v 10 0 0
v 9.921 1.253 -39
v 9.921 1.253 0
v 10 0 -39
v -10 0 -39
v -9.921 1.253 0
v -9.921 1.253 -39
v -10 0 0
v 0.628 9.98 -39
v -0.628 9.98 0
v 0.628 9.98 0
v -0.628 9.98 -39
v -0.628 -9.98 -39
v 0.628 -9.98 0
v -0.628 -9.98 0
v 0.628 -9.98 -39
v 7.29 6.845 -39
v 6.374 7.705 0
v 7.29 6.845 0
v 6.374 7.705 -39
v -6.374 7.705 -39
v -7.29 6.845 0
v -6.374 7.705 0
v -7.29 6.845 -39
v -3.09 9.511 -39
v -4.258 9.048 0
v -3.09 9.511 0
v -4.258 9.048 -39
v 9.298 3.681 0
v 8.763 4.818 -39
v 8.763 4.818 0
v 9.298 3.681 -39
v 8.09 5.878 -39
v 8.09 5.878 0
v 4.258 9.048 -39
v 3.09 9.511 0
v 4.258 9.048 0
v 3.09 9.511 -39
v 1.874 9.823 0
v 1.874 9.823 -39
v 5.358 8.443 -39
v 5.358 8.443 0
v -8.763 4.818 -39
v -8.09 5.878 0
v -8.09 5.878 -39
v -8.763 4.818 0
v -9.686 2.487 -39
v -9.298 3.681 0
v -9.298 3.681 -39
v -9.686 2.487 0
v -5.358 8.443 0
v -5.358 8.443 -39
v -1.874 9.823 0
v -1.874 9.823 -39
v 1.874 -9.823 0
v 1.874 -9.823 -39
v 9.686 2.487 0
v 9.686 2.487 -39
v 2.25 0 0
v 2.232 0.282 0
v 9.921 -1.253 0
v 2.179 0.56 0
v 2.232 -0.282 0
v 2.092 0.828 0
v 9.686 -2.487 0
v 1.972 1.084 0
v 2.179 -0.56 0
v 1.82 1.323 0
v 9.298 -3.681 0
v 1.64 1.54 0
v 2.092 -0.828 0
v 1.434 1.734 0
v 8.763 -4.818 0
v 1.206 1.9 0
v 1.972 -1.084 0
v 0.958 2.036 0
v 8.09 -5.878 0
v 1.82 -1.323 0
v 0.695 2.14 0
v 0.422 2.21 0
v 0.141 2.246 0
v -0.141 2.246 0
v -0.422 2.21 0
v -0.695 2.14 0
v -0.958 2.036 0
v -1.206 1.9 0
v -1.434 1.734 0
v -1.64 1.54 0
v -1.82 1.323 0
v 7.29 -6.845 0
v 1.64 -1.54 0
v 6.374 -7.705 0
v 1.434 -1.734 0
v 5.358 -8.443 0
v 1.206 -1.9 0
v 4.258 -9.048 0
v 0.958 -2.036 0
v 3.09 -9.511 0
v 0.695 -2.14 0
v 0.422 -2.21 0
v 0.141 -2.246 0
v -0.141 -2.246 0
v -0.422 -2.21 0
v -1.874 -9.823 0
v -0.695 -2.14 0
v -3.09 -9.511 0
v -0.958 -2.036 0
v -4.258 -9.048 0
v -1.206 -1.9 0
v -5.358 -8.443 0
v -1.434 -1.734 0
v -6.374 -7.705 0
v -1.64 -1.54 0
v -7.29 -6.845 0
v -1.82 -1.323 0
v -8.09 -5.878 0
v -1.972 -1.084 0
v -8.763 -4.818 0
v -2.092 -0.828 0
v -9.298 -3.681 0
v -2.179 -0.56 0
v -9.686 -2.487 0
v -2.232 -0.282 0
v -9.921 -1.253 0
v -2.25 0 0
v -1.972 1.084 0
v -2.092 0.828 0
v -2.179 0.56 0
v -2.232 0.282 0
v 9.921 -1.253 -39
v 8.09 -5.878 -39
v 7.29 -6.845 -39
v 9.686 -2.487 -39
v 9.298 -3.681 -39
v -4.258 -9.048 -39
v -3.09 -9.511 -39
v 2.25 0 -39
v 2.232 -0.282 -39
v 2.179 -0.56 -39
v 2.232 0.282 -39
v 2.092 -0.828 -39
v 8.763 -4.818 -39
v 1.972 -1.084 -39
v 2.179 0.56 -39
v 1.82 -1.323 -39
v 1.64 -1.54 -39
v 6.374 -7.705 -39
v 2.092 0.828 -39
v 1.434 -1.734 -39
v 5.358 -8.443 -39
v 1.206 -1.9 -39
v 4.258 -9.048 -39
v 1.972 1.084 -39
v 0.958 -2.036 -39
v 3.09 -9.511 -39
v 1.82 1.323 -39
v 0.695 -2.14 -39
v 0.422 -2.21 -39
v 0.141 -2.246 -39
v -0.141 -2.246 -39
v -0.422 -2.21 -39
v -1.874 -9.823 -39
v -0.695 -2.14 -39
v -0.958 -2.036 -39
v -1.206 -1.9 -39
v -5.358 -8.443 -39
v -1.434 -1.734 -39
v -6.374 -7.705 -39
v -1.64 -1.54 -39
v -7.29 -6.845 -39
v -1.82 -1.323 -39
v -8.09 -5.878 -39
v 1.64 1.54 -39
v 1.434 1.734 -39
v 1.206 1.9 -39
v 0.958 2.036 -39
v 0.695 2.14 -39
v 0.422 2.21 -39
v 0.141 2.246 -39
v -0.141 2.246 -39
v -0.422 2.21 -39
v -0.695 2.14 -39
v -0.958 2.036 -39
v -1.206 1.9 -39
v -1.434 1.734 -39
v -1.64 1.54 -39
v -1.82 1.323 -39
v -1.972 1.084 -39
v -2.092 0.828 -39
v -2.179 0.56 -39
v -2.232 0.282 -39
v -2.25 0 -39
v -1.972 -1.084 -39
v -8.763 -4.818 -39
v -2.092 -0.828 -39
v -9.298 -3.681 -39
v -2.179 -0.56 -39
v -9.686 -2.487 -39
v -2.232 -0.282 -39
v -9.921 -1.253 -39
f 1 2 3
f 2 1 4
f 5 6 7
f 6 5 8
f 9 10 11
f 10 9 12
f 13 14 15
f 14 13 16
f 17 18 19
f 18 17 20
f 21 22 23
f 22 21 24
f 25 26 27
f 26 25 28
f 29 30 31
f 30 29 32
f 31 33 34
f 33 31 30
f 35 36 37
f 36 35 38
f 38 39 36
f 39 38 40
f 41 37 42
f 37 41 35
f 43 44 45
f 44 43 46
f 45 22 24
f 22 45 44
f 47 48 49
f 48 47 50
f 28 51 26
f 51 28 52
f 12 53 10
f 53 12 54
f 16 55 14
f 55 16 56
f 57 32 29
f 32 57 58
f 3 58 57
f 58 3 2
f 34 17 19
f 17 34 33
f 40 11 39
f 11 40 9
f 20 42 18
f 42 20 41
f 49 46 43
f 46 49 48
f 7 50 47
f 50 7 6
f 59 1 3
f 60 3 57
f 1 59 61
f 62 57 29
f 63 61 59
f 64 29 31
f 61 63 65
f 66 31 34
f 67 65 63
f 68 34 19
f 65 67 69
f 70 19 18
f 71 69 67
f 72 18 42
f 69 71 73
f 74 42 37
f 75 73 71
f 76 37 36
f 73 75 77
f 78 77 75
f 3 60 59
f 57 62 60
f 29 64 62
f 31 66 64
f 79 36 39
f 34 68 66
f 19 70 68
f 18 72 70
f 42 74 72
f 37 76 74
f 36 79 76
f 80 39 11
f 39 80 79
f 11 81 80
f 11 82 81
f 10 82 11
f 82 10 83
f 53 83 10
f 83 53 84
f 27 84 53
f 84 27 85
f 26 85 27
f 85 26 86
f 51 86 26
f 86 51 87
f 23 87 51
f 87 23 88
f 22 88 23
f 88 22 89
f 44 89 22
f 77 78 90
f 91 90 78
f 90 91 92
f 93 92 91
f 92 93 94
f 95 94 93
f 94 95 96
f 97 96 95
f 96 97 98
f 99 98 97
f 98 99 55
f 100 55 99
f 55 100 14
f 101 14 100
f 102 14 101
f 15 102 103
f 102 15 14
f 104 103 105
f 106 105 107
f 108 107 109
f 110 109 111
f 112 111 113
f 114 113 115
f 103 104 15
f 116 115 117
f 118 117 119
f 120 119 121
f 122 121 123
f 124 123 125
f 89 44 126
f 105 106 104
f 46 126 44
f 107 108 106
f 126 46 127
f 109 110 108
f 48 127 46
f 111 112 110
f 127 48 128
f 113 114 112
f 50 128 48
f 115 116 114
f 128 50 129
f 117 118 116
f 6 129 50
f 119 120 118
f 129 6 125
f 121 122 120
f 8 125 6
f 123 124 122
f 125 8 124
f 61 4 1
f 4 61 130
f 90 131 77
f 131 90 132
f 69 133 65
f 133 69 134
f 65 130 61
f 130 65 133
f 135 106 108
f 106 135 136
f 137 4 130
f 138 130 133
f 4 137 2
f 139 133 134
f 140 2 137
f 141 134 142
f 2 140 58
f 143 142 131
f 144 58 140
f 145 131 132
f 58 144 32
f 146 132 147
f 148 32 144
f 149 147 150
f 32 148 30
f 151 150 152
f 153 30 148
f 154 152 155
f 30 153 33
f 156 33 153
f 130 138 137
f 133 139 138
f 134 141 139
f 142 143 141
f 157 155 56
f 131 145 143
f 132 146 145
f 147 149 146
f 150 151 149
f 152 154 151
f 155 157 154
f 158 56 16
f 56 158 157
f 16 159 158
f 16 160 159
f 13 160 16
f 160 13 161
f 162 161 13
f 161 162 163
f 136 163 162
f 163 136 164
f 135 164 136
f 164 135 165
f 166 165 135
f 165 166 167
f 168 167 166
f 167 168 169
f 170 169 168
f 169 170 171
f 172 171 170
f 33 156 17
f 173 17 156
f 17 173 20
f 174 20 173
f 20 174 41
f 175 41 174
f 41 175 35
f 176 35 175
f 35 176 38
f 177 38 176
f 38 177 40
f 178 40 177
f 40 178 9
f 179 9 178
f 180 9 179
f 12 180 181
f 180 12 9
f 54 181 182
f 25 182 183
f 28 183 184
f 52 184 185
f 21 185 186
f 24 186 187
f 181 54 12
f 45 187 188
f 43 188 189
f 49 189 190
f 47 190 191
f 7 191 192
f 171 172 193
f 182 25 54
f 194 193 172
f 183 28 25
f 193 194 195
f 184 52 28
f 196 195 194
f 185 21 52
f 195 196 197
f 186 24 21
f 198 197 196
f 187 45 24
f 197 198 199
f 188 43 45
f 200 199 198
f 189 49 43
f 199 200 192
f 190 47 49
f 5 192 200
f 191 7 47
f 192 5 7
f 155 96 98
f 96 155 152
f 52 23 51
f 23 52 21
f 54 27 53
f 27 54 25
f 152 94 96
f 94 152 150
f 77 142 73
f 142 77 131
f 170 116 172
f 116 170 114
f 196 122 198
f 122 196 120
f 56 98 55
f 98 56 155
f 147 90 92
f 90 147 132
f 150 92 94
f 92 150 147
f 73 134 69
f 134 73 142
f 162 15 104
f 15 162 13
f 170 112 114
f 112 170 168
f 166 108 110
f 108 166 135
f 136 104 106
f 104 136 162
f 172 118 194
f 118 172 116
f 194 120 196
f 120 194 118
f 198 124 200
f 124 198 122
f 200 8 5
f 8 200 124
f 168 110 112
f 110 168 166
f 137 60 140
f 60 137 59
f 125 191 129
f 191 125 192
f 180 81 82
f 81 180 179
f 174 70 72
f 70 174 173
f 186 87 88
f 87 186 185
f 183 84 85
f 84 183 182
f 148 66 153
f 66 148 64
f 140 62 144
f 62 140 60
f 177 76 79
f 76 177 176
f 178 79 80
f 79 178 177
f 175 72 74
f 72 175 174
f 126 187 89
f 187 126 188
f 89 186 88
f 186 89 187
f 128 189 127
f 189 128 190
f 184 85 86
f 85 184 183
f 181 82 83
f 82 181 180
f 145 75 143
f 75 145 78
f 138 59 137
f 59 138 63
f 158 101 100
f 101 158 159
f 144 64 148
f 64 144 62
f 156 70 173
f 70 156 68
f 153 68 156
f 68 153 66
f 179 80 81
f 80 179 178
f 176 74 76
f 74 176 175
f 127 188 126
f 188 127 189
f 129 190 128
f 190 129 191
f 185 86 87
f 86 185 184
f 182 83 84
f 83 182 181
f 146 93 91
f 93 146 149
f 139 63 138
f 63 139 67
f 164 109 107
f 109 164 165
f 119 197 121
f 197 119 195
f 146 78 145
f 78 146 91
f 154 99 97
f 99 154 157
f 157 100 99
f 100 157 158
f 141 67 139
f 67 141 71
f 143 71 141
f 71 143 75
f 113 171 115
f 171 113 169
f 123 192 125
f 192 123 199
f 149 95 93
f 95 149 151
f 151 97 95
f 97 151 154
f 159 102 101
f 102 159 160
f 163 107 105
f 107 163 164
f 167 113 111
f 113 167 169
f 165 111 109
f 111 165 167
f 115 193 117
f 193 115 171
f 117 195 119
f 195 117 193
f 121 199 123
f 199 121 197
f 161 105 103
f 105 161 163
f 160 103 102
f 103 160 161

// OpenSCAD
$fn = 50;


difference() {
	union() {
		translate(v = [0, 0, -39.0000000000]) {
			cylinder(h = 39, r = 10.0000000000);
		}
	}
	union() {
		#translate(v = [0, 0, -39]) {
			cylinder(h = 39, r = 2.2500000000);
		}
	}
}
